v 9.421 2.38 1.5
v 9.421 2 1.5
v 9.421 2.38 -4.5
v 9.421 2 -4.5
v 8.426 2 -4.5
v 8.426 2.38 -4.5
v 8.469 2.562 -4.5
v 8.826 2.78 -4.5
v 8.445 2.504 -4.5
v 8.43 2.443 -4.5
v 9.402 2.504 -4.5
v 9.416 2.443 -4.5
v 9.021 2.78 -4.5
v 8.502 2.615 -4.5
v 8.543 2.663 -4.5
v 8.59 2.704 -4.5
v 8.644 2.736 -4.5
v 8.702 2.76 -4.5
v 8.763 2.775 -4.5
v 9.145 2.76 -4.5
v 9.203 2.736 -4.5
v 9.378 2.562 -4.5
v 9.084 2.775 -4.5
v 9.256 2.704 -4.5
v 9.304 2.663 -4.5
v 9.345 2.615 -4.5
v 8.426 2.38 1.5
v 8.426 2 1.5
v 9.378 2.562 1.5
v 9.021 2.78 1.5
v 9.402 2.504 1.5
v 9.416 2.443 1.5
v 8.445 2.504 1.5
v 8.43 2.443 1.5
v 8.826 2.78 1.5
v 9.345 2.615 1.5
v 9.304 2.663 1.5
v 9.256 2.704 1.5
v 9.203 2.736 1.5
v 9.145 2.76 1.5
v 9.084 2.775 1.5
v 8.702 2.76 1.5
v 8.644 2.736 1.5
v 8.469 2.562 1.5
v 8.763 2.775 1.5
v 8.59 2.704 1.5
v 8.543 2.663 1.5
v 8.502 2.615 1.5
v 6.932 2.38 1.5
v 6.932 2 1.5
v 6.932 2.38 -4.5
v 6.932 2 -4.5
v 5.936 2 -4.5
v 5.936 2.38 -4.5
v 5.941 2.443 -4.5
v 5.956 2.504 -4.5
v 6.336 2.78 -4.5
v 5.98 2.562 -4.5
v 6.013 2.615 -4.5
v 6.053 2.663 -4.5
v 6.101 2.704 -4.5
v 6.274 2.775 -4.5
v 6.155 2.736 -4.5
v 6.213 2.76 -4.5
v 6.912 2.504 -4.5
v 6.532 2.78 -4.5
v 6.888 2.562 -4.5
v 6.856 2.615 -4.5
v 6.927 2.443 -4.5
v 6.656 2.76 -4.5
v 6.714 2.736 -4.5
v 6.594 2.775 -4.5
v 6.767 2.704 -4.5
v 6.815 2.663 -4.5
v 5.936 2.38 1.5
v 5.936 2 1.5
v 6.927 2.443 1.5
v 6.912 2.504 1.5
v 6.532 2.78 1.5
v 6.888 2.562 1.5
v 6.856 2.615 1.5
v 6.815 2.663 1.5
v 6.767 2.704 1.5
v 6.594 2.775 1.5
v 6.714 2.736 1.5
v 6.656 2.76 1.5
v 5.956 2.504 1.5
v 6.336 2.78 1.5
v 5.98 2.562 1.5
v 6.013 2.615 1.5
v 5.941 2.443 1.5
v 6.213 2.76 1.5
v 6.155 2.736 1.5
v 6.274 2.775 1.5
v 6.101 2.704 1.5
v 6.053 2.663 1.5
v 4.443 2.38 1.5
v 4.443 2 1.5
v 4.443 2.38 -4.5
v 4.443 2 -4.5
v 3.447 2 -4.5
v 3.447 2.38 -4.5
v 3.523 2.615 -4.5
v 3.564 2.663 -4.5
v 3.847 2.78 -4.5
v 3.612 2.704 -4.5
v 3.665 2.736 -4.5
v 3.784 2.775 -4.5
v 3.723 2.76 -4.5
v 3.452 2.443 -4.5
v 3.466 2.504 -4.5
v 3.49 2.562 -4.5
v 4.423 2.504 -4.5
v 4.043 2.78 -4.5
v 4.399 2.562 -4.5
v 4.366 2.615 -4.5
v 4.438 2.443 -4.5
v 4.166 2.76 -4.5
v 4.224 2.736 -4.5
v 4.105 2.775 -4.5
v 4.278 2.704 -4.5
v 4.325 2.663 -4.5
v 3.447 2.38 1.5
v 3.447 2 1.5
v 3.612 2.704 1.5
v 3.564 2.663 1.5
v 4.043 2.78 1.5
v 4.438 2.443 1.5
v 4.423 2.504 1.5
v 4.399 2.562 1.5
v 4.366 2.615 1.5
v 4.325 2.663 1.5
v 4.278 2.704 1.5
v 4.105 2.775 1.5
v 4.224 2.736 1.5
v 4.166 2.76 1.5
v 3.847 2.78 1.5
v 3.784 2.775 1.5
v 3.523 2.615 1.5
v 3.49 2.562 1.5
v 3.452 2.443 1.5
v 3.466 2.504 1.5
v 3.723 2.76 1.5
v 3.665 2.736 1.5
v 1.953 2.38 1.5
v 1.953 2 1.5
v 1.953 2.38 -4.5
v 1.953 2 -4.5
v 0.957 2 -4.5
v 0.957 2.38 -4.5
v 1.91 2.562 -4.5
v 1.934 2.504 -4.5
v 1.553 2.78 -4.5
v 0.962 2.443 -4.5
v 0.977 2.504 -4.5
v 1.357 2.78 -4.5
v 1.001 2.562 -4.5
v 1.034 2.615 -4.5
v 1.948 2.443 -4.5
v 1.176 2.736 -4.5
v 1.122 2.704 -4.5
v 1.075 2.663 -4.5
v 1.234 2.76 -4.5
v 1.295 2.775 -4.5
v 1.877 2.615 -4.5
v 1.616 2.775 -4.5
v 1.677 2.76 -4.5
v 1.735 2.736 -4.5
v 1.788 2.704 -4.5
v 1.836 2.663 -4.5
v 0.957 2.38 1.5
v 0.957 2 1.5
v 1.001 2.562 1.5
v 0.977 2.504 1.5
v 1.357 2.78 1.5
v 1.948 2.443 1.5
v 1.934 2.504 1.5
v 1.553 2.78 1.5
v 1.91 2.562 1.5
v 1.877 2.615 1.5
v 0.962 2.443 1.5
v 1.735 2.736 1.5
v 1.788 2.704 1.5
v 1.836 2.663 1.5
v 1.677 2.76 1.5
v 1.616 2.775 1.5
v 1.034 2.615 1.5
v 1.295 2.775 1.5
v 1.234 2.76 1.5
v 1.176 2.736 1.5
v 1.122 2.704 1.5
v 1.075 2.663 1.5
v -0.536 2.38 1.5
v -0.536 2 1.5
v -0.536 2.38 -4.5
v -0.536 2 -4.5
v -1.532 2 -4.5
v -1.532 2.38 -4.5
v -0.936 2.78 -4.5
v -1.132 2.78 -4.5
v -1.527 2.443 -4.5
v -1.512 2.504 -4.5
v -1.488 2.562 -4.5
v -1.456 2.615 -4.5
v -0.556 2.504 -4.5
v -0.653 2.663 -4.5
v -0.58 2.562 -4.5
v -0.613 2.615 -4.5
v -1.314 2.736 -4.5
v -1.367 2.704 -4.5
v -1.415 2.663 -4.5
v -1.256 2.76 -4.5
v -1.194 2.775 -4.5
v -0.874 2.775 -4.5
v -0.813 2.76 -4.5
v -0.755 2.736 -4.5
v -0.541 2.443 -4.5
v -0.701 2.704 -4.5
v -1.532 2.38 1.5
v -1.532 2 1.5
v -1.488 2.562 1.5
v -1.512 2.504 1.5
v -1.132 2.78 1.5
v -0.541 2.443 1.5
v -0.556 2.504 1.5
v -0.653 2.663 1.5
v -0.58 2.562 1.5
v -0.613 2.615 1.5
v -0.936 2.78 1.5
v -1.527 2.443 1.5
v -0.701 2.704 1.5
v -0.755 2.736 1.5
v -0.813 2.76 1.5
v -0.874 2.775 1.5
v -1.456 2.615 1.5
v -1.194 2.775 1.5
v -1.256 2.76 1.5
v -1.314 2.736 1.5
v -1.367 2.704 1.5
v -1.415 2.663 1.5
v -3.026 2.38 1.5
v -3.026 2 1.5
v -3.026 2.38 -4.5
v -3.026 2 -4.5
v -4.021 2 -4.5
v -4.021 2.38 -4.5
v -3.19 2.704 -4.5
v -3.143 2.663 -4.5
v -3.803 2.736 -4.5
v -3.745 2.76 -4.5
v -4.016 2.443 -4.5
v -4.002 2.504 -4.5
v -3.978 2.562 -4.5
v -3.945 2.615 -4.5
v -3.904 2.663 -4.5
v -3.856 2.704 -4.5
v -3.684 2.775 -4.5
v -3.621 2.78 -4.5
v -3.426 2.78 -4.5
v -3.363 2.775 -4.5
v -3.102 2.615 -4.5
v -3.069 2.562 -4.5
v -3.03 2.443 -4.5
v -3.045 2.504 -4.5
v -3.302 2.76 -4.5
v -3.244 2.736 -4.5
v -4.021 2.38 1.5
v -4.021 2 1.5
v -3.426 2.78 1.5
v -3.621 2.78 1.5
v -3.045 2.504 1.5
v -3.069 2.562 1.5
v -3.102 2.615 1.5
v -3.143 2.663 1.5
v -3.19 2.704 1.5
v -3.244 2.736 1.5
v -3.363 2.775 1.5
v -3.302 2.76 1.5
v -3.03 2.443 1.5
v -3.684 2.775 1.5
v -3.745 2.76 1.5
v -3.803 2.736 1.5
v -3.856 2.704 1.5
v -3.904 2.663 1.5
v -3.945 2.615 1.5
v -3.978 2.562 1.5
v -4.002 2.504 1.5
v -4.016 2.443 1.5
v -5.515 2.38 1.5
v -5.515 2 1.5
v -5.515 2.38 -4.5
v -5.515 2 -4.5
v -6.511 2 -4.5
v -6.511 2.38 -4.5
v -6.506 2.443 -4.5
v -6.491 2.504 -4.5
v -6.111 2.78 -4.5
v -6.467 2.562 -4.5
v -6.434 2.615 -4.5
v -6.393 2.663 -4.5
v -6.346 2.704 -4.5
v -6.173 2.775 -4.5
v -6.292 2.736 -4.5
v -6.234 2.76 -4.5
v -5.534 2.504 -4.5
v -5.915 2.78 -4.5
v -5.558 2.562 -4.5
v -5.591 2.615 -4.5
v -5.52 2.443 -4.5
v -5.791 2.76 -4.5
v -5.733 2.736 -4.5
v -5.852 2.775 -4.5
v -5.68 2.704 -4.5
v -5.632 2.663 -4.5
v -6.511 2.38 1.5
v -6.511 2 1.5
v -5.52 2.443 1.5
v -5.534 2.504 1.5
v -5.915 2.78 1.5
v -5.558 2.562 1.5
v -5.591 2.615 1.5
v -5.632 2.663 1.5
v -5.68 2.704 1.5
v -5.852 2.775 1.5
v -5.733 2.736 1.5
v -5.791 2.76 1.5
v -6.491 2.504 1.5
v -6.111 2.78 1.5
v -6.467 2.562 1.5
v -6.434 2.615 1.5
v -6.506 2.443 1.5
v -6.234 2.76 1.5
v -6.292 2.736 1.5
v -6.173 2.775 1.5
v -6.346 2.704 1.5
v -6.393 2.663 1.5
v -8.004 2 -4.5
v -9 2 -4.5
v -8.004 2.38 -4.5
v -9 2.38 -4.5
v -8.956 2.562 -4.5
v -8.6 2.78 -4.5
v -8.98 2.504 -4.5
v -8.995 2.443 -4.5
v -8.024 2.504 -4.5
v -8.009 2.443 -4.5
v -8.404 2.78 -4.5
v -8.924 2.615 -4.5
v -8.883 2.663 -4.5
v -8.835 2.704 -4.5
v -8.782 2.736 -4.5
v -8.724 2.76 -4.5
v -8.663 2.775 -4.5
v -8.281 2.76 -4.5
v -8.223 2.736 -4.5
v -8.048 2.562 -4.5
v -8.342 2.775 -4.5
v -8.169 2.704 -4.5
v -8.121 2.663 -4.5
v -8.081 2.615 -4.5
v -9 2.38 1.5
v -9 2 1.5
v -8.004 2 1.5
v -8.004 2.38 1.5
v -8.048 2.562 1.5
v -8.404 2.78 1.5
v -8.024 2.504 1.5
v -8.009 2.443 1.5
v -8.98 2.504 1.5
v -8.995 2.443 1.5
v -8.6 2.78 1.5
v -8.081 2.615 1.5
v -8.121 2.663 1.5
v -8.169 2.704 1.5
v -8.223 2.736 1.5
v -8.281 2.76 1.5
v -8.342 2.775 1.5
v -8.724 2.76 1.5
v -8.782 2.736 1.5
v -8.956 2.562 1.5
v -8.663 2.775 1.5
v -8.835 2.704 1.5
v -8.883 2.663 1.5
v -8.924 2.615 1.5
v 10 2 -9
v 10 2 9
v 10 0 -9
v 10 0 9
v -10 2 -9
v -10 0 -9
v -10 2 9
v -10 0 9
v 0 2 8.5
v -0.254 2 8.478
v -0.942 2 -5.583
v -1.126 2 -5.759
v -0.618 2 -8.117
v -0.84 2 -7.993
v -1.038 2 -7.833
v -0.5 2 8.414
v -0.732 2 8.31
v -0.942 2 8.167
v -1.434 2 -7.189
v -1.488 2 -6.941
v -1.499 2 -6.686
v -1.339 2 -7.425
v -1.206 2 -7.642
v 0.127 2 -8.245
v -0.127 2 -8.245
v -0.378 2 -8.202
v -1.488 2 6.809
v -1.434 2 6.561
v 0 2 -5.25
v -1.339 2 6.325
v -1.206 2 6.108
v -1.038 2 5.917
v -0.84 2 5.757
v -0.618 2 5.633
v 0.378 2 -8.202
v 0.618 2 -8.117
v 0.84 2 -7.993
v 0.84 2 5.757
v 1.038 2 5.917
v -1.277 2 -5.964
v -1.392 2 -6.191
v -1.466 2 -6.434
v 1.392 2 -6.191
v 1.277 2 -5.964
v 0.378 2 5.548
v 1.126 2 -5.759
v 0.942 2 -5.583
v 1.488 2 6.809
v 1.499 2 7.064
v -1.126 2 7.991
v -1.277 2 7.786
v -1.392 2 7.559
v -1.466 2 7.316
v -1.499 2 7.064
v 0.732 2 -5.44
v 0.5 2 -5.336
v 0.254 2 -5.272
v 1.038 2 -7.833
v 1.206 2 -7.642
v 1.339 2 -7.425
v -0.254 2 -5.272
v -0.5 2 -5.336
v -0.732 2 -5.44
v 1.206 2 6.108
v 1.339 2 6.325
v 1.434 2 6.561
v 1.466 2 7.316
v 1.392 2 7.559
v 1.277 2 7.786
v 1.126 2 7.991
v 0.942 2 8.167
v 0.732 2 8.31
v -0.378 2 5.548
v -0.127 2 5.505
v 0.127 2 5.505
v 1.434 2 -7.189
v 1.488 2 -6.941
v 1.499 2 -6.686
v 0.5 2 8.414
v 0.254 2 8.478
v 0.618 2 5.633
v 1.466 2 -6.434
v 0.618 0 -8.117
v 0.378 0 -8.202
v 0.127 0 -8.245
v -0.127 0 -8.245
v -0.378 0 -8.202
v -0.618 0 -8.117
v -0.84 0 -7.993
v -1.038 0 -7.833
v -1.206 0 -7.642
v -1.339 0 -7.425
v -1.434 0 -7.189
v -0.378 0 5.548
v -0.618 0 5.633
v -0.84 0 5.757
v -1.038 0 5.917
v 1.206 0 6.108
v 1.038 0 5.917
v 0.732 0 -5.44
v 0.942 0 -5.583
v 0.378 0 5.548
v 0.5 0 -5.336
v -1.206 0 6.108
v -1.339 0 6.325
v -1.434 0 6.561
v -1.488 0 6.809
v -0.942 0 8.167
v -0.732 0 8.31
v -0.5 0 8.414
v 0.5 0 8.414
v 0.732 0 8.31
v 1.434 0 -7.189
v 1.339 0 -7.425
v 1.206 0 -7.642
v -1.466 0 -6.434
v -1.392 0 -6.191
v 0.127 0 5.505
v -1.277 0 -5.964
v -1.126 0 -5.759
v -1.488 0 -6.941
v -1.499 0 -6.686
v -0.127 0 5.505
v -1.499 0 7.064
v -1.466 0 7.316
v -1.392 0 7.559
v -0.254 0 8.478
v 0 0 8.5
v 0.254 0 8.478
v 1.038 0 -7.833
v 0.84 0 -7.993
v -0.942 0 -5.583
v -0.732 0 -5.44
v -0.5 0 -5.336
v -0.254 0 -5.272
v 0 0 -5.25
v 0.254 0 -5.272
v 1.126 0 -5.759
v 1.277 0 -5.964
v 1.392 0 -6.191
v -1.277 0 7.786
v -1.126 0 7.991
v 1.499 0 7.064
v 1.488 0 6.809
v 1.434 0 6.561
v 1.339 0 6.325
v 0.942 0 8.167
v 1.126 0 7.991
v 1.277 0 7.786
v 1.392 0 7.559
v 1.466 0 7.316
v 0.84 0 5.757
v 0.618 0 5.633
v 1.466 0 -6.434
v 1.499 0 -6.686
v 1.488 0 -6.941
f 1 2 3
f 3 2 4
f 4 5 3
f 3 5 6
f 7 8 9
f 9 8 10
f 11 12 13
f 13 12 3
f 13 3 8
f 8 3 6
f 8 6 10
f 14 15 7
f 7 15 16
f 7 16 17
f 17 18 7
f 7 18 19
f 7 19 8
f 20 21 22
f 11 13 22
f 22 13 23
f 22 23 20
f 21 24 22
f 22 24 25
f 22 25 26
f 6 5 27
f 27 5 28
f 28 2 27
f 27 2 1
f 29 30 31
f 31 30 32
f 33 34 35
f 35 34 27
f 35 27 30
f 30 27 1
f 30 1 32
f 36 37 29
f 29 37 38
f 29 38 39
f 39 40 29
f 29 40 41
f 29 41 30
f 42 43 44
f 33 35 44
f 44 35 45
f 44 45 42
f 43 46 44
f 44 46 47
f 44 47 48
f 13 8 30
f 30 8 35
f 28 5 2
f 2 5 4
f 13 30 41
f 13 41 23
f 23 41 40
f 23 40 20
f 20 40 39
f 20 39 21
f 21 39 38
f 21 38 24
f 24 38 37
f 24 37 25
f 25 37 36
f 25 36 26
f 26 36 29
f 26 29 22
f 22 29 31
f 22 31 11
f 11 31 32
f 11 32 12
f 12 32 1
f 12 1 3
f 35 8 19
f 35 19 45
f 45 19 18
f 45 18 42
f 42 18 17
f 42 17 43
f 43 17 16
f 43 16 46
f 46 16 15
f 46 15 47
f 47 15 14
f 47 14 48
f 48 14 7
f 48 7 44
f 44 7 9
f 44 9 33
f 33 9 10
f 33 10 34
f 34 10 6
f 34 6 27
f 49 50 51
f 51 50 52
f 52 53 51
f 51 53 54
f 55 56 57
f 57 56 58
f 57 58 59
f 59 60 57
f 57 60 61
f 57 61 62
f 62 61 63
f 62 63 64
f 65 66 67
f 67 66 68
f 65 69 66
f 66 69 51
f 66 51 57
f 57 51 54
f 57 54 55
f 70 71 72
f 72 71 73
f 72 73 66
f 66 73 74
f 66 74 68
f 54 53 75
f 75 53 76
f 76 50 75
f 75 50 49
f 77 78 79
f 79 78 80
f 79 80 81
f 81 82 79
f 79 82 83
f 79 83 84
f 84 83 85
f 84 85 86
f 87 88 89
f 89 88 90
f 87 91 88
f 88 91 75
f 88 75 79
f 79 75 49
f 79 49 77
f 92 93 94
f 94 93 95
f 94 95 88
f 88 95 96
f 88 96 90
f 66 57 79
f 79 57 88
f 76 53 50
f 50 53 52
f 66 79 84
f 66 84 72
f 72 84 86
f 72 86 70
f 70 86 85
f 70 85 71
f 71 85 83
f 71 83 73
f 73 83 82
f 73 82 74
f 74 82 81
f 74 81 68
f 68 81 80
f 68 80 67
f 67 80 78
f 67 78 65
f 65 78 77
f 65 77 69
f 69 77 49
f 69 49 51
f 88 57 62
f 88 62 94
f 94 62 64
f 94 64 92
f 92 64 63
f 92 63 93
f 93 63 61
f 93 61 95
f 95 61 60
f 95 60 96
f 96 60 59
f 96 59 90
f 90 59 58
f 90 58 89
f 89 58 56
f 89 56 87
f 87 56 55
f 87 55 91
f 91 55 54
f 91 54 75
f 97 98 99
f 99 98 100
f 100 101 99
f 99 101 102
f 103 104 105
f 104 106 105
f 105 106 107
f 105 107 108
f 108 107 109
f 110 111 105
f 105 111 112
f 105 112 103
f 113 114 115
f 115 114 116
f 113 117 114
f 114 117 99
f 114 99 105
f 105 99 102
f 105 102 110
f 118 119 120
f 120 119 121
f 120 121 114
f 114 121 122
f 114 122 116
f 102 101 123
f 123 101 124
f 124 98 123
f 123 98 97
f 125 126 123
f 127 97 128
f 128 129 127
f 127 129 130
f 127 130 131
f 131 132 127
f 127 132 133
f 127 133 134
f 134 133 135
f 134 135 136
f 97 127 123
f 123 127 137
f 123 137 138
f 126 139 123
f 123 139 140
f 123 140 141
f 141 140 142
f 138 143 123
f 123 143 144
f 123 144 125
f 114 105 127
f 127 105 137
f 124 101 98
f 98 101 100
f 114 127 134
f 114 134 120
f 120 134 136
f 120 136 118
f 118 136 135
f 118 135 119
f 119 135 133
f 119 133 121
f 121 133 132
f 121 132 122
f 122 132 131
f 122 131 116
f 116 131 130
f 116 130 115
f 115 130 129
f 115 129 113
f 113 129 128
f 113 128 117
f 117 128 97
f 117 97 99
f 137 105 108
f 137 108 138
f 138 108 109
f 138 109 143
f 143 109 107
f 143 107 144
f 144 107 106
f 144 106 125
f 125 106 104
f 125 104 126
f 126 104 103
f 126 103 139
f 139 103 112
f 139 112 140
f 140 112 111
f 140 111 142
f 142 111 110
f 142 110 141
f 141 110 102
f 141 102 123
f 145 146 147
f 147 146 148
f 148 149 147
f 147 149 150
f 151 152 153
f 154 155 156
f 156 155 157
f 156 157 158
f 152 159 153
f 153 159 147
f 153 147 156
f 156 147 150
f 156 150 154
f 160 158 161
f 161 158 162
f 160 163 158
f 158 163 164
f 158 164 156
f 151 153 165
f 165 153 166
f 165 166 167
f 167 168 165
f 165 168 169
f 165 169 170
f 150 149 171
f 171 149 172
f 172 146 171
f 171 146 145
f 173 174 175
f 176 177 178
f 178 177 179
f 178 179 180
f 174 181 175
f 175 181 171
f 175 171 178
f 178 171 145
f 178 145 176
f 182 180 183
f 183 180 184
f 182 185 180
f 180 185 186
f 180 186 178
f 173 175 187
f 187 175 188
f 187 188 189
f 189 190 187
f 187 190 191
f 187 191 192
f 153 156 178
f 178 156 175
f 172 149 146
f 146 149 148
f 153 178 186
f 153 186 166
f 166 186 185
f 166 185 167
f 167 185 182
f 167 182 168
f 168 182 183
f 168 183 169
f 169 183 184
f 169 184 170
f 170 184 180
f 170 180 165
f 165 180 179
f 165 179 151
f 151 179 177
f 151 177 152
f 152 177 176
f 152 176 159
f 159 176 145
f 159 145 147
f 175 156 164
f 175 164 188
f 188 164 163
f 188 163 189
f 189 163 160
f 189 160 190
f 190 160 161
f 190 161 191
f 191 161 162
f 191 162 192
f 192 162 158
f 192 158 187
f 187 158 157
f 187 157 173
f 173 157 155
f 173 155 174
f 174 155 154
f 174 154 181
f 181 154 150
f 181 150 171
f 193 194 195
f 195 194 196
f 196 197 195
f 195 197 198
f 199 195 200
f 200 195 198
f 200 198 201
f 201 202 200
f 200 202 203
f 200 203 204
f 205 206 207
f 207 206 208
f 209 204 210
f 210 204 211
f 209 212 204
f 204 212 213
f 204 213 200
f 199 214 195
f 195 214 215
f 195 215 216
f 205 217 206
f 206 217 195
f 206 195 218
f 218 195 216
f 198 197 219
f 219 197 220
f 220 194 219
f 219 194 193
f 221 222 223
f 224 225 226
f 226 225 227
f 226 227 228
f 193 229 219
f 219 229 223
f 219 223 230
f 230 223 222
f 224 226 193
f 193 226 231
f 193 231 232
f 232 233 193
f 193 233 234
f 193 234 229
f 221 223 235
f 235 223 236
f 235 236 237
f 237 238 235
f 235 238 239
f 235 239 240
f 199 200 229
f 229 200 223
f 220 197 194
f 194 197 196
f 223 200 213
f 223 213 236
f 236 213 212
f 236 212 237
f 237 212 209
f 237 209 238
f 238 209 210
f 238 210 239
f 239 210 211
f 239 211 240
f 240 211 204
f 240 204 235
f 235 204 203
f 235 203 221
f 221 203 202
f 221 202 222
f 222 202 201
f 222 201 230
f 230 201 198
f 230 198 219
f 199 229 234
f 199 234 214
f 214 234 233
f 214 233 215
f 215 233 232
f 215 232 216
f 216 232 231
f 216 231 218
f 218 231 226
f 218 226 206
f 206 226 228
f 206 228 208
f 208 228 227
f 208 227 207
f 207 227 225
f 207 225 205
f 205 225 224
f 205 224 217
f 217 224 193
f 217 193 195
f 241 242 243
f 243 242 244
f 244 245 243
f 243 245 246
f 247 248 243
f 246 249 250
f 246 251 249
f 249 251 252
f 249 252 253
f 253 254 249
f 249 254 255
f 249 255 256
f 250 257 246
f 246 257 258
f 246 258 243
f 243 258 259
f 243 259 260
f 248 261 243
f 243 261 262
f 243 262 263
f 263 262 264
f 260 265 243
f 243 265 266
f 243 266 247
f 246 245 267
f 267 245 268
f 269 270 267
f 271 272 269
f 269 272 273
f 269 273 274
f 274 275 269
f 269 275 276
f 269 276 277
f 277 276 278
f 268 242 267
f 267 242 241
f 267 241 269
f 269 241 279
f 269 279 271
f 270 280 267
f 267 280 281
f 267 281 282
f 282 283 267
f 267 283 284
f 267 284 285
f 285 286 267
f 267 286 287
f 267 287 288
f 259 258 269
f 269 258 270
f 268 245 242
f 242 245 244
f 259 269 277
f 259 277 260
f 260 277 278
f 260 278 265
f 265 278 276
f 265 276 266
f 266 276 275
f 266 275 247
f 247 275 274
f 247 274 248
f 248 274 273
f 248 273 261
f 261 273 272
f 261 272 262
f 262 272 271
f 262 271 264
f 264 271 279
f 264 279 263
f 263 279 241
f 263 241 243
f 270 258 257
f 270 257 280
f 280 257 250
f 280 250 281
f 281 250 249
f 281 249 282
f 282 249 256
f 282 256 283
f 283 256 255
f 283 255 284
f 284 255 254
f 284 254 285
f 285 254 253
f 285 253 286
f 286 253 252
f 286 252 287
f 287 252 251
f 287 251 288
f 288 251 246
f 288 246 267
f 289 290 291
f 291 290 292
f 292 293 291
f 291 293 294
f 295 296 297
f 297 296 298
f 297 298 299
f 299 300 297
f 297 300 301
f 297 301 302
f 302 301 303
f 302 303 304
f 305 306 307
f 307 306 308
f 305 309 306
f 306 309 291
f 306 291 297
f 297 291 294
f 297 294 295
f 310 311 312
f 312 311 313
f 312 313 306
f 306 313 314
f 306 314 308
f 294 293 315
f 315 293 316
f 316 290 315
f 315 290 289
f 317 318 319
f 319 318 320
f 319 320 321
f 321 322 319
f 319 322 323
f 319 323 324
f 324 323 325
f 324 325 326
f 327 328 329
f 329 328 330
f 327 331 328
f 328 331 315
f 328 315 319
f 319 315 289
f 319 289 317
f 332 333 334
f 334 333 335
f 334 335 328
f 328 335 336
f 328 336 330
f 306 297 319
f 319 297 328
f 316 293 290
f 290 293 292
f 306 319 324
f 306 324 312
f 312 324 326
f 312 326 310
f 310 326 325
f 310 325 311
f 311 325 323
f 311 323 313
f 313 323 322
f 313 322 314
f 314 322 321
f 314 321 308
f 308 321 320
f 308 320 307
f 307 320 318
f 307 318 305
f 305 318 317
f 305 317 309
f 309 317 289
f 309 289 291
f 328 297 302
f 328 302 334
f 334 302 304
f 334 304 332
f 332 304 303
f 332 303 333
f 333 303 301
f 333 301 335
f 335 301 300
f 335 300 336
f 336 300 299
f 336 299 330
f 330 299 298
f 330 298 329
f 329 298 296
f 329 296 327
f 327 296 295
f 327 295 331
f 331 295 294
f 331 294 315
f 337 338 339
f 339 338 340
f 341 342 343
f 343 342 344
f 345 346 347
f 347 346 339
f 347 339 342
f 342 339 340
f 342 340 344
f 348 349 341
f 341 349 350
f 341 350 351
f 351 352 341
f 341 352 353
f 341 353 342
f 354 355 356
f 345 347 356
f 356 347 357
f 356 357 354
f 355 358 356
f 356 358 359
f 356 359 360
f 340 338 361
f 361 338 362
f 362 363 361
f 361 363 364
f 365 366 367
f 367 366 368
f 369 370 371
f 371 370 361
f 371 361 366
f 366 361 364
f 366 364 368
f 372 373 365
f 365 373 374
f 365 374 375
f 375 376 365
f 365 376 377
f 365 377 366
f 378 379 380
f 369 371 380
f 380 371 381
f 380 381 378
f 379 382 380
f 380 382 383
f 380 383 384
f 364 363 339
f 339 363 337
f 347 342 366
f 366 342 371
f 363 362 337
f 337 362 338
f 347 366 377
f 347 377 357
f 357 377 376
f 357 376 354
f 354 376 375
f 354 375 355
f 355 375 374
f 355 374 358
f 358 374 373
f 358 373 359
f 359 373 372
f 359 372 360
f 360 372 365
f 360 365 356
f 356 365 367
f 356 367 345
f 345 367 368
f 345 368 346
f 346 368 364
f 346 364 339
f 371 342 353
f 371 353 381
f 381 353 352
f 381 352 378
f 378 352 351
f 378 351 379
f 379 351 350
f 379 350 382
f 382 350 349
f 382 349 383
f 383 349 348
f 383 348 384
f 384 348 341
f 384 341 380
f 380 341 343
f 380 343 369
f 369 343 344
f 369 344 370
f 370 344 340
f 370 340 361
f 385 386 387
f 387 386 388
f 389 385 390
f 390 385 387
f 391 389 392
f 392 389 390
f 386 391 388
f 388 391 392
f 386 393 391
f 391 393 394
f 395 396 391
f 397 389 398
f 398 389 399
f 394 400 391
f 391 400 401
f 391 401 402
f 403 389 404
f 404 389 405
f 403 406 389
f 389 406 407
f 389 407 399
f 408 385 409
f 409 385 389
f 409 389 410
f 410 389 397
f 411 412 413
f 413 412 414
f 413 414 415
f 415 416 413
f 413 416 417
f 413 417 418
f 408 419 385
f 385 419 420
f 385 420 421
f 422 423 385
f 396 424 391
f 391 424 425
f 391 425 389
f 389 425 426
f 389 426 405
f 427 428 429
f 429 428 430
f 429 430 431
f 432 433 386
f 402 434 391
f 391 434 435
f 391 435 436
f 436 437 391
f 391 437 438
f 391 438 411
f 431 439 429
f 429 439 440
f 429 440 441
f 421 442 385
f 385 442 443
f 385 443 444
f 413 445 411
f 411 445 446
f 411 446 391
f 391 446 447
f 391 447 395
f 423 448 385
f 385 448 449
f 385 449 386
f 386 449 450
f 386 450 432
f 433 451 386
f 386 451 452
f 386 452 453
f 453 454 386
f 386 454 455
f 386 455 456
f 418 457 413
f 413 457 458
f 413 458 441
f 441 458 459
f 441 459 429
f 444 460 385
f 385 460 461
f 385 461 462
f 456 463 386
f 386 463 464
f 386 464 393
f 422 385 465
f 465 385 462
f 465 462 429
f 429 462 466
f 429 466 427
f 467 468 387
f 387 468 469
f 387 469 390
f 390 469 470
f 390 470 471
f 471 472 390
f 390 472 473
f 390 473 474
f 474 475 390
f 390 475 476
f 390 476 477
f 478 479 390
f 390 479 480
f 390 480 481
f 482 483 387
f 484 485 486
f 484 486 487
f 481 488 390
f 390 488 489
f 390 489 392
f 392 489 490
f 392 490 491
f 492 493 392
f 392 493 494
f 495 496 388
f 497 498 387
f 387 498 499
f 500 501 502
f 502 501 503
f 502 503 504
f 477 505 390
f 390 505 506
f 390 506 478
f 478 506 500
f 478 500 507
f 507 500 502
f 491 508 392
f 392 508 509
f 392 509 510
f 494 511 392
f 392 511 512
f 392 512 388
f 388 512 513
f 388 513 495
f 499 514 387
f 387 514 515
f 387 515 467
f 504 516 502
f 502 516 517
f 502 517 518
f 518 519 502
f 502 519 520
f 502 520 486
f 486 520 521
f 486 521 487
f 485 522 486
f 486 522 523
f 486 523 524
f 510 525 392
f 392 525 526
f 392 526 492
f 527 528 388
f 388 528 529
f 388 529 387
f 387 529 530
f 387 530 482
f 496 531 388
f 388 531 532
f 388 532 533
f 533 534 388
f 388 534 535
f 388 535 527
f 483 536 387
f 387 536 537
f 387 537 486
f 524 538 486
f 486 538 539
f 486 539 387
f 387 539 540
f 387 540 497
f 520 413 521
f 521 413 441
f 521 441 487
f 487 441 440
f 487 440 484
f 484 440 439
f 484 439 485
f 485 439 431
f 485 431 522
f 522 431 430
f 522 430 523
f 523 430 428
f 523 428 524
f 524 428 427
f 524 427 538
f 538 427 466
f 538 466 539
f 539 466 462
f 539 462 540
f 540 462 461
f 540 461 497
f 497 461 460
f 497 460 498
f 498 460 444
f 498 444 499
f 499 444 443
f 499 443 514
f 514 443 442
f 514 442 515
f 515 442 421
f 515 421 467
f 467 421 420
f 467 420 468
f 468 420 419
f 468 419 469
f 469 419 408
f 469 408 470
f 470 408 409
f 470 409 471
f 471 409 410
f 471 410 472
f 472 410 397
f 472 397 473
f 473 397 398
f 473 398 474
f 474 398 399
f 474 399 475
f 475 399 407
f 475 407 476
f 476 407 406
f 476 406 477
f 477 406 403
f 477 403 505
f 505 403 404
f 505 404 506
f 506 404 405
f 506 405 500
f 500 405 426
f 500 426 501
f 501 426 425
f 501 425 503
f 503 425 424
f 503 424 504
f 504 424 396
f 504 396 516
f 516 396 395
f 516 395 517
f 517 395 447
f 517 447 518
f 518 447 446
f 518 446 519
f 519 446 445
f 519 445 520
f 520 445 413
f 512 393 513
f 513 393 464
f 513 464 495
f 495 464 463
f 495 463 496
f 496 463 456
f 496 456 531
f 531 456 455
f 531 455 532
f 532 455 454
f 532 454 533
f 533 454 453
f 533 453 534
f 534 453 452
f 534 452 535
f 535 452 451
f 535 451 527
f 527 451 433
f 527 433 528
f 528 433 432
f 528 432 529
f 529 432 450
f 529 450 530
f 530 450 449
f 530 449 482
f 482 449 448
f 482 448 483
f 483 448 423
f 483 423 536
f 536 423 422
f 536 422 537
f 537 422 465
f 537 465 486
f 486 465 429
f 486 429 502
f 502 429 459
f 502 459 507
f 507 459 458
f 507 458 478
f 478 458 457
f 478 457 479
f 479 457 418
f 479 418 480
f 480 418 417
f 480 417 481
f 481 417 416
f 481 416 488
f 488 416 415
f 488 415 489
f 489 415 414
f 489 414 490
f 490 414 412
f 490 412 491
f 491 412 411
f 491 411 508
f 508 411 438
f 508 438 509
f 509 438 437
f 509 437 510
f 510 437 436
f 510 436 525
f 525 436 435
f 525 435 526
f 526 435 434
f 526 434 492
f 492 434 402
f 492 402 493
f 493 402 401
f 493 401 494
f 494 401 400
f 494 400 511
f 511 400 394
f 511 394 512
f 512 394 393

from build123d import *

# Parameters (mm, degrees)
SKETCH_1_W          = 20
SKETCH_1_H          = 18
EXTRUDE_1_DEPTH     = 2
SKETCH_2_R          = 1.45
CUT_EXTRUDE_1_DEPTH = 2
SKETCH_6_W          = 0.995744681
SKETCH_6_H          = 6
EXTRUDE_4_DEPTH     = 0.78
EXTRUDE_4_2_DEPTH   = 0.78
SKETCH_6_W_2        = 0.99574468
EXTRUDE_4_3_DEPTH   = 0.78
EXTRUDE_4_4_DEPTH   = 0.78
EXTRUDE_4_5_DEPTH   = 0.78
EXTRUDE_4_6_DEPTH   = 0.78
EXTRUDE_4_7_DEPTH   = 0.78
EXTRUDE_4_8_DEPTH   = 0.78
FILLET_11_R         = 0.4
FILLET_12_R         = 0.4
FILLET_13_R         = 0.4
FILLET_14_R         = 0.4
FILLET_15_R         = 0.4
FILLET_16_R         = 0.4
FILLET_17_R         = 0.4
FILLET_18_R         = 0.4
FILLET_19_R         = 0.4


with BuildPart() as part:
    # 草图1 → 凸台-拉伸1 (new body)
    with BuildSketch(Plane(origin=(0, 0, 0), x_dir=(1, 0, 0), z_dir=(0, 1, 0))):
        Rectangle(SKETCH_1_W, SKETCH_1_H)
    extrude(amount=EXTRUDE_1_DEPTH)

    # 草图2 → 切除-拉伸1 (cut)
    with BuildSketch(Plane(origin=(-240.647809903, 2, 128.997706918), x_dir=(-0.03789144558413265, 0, 0.9992818613141864), z_dir=(0, 1, 0))):
        with Locations(Location((-131.028589039, 235.852321928, 0), (0, 0, 2.171539759))):
            Circle(SKETCH_2_R)
        with Locations(Location((-144.768714632, 235.331314552, 0), (0, 0, 2.171539759))):
            Circle(SKETCH_2_R)
    extrude(amount=-CUT_EXTRUDE_1_DEPTH, mode=Mode.SUBTRACT)


with BuildPart() as body_2:
    # 草图6 → 凸台-拉伸4 (new body)
    with BuildSketch(Plane(origin=(0, 2, 0), x_dir=(1, 0, 0), z_dir=(0, 1, 0))):
        with Locations((8.923404255, 1.5)):
            Rectangle(SKETCH_6_W, SKETCH_6_H)
    extrude(amount=EXTRUDE_4_DEPTH)

    # 圆角19
    fillet_19_edges = [body_2.edges().sort_by_distance(p)[0] for p in [
        (8.425531915, 2.78, -1.5),
        (9.421276596, 2.78, -1.5),
    ]]
    fillet(fillet_19_edges, radius=FILLET_19_R)


with BuildPart() as body_3:
    # 草图6 → Extrude 4 2 (new body)
    with BuildSketch(Plane(origin=(0, 2, 0), x_dir=(1, 0, 0), z_dir=(0, 1, 0))):
        with Locations((6.434042554, 1.5)):
            Rectangle(SKETCH_6_W, SKETCH_6_H)
    extrude(amount=EXTRUDE_4_2_DEPTH)

    # 圆角18
    fillet_18_edges = [body_3.edges().sort_by_distance(p)[0] for p in [
        (5.936170213, 2.78, -1.5),
        (6.931914894, 2.78, -1.5),
    ]]
    fillet(fillet_18_edges, radius=FILLET_18_R)


with BuildPart() as body_4:
    # 草图6 → Extrude 4 3 (new body)
    with BuildSketch(Plane(origin=(0, 2, 0), x_dir=(1, 0, 0), z_dir=(0, 1, 0))):
        with Locations((3.944680851, 1.5)):
            Rectangle(SKETCH_6_W_2, SKETCH_6_H)
    extrude(amount=EXTRUDE_4_3_DEPTH)

    # 圆角17
    fillet_17_edges = [body_4.edges().sort_by_distance(p)[0] for p in [
        (3.446808511, 2.78, -1.5),
        (4.442553191, 2.78, -1.5),
    ]]
    fillet(fillet_17_edges, radius=FILLET_17_R)


with BuildPart() as body_5:
    # 草图6 → Extrude 4 4 (new body)
    with BuildSketch(Plane(origin=(0, 2, 0), x_dir=(1, 0, 0), z_dir=(0, 1, 0))):
        with Locations((1.455319149, 1.5)):
            Rectangle(SKETCH_6_W_2, SKETCH_6_H)
    extrude(amount=EXTRUDE_4_4_DEPTH)

    # 圆角16
    fillet_16_edges = [body_5.edges().sort_by_distance(p)[0] for p in [
        (0.957446809, 2.78, -1.5),
        (1.953191489, 2.78, -1.5),
    ]]
    fillet(fillet_16_edges, radius=FILLET_16_R)


with BuildPart() as body_6:
    # 草图6 → Extrude 4 5 (new body)
    with BuildSketch(Plane(origin=(0, 2, 0), x_dir=(1, 0, 0), z_dir=(0, 1, 0))):
        with Locations((-1.034042553, 1.5)):
            Rectangle(SKETCH_6_W, SKETCH_6_H)
    extrude(amount=EXTRUDE_4_5_DEPTH)

    # 圆角14
    fillet_14_edges = [body_6.edges().sort_by_distance(p)[0] for p in [
        (-1.531914894, 2.78, -1.5),
    ]]
    fillet(fillet_14_edges, radius=FILLET_14_R)

    # 圆角15
    fillet_15_edges = [body_6.edges().sort_by_distance(p)[0] for p in [
        (-0.536170213, 2.78, -1.5),
    ]]
    fillet(fillet_15_edges, radius=FILLET_15_R)


with BuildPart() as body_7:
    # 草图6 → Extrude 4 6 (new body)
    with BuildSketch(Plane(origin=(0, 2, 0), x_dir=(1, 0, 0), z_dir=(0, 1, 0))):
        with Locations((-3.523404256, 1.5)):
            Rectangle(SKETCH_6_W, SKETCH_6_H)
    extrude(amount=EXTRUDE_4_6_DEPTH)

    # 圆角13
    fillet_13_edges = [body_7.edges().sort_by_distance(p)[0] for p in [
        (-4.021276596, 2.78, -1.5),
        (-3.025531915, 2.78, -1.5),
    ]]
    fillet(fillet_13_edges, radius=FILLET_13_R)


with BuildPart() as body_8:
    # 草图6 → Extrude 4 7 (new body)
    with BuildSketch(Plane(origin=(0, 2, 0), x_dir=(1, 0, 0), z_dir=(0, 1, 0))):
        with Locations((-6.012765958, 1.5)):
            Rectangle(SKETCH_6_W, SKETCH_6_H)
    extrude(amount=EXTRUDE_4_7_DEPTH)

    # 圆角12
    fillet_12_edges = [body_8.edges().sort_by_distance(p)[0] for p in [
        (-6.510638298, 2.78, -1.5),
        (-5.514893617, 2.78, -1.5),
    ]]
    fillet(fillet_12_edges, radius=FILLET_12_R)


with BuildPart() as body_9:
    # 草图6 → Extrude 4 8 (new body)
    with BuildSketch(Plane(origin=(0, 2, 0), x_dir=(1, 0, 0), z_dir=(0, 1, 0))):
        with Locations((-8.50212766, 1.5)):
            Rectangle(SKETCH_6_W, SKETCH_6_H)
    extrude(amount=EXTRUDE_4_8_DEPTH)

    # 圆角11
    fillet_11_edges = [body_9.edges().sort_by_distance(p)[0] for p in [
        (-8.004255319, 2.78, -1.5),
        (-9, 2.78, -1.5),
    ]]
    fillet(fillet_11_edges, radius=FILLET_11_R)


solid = Compound([part.part, body_2.part, body_3.part, body_4.part, body_5.part, body_6.part, body_7.part, body_8.part, body_9.part])
